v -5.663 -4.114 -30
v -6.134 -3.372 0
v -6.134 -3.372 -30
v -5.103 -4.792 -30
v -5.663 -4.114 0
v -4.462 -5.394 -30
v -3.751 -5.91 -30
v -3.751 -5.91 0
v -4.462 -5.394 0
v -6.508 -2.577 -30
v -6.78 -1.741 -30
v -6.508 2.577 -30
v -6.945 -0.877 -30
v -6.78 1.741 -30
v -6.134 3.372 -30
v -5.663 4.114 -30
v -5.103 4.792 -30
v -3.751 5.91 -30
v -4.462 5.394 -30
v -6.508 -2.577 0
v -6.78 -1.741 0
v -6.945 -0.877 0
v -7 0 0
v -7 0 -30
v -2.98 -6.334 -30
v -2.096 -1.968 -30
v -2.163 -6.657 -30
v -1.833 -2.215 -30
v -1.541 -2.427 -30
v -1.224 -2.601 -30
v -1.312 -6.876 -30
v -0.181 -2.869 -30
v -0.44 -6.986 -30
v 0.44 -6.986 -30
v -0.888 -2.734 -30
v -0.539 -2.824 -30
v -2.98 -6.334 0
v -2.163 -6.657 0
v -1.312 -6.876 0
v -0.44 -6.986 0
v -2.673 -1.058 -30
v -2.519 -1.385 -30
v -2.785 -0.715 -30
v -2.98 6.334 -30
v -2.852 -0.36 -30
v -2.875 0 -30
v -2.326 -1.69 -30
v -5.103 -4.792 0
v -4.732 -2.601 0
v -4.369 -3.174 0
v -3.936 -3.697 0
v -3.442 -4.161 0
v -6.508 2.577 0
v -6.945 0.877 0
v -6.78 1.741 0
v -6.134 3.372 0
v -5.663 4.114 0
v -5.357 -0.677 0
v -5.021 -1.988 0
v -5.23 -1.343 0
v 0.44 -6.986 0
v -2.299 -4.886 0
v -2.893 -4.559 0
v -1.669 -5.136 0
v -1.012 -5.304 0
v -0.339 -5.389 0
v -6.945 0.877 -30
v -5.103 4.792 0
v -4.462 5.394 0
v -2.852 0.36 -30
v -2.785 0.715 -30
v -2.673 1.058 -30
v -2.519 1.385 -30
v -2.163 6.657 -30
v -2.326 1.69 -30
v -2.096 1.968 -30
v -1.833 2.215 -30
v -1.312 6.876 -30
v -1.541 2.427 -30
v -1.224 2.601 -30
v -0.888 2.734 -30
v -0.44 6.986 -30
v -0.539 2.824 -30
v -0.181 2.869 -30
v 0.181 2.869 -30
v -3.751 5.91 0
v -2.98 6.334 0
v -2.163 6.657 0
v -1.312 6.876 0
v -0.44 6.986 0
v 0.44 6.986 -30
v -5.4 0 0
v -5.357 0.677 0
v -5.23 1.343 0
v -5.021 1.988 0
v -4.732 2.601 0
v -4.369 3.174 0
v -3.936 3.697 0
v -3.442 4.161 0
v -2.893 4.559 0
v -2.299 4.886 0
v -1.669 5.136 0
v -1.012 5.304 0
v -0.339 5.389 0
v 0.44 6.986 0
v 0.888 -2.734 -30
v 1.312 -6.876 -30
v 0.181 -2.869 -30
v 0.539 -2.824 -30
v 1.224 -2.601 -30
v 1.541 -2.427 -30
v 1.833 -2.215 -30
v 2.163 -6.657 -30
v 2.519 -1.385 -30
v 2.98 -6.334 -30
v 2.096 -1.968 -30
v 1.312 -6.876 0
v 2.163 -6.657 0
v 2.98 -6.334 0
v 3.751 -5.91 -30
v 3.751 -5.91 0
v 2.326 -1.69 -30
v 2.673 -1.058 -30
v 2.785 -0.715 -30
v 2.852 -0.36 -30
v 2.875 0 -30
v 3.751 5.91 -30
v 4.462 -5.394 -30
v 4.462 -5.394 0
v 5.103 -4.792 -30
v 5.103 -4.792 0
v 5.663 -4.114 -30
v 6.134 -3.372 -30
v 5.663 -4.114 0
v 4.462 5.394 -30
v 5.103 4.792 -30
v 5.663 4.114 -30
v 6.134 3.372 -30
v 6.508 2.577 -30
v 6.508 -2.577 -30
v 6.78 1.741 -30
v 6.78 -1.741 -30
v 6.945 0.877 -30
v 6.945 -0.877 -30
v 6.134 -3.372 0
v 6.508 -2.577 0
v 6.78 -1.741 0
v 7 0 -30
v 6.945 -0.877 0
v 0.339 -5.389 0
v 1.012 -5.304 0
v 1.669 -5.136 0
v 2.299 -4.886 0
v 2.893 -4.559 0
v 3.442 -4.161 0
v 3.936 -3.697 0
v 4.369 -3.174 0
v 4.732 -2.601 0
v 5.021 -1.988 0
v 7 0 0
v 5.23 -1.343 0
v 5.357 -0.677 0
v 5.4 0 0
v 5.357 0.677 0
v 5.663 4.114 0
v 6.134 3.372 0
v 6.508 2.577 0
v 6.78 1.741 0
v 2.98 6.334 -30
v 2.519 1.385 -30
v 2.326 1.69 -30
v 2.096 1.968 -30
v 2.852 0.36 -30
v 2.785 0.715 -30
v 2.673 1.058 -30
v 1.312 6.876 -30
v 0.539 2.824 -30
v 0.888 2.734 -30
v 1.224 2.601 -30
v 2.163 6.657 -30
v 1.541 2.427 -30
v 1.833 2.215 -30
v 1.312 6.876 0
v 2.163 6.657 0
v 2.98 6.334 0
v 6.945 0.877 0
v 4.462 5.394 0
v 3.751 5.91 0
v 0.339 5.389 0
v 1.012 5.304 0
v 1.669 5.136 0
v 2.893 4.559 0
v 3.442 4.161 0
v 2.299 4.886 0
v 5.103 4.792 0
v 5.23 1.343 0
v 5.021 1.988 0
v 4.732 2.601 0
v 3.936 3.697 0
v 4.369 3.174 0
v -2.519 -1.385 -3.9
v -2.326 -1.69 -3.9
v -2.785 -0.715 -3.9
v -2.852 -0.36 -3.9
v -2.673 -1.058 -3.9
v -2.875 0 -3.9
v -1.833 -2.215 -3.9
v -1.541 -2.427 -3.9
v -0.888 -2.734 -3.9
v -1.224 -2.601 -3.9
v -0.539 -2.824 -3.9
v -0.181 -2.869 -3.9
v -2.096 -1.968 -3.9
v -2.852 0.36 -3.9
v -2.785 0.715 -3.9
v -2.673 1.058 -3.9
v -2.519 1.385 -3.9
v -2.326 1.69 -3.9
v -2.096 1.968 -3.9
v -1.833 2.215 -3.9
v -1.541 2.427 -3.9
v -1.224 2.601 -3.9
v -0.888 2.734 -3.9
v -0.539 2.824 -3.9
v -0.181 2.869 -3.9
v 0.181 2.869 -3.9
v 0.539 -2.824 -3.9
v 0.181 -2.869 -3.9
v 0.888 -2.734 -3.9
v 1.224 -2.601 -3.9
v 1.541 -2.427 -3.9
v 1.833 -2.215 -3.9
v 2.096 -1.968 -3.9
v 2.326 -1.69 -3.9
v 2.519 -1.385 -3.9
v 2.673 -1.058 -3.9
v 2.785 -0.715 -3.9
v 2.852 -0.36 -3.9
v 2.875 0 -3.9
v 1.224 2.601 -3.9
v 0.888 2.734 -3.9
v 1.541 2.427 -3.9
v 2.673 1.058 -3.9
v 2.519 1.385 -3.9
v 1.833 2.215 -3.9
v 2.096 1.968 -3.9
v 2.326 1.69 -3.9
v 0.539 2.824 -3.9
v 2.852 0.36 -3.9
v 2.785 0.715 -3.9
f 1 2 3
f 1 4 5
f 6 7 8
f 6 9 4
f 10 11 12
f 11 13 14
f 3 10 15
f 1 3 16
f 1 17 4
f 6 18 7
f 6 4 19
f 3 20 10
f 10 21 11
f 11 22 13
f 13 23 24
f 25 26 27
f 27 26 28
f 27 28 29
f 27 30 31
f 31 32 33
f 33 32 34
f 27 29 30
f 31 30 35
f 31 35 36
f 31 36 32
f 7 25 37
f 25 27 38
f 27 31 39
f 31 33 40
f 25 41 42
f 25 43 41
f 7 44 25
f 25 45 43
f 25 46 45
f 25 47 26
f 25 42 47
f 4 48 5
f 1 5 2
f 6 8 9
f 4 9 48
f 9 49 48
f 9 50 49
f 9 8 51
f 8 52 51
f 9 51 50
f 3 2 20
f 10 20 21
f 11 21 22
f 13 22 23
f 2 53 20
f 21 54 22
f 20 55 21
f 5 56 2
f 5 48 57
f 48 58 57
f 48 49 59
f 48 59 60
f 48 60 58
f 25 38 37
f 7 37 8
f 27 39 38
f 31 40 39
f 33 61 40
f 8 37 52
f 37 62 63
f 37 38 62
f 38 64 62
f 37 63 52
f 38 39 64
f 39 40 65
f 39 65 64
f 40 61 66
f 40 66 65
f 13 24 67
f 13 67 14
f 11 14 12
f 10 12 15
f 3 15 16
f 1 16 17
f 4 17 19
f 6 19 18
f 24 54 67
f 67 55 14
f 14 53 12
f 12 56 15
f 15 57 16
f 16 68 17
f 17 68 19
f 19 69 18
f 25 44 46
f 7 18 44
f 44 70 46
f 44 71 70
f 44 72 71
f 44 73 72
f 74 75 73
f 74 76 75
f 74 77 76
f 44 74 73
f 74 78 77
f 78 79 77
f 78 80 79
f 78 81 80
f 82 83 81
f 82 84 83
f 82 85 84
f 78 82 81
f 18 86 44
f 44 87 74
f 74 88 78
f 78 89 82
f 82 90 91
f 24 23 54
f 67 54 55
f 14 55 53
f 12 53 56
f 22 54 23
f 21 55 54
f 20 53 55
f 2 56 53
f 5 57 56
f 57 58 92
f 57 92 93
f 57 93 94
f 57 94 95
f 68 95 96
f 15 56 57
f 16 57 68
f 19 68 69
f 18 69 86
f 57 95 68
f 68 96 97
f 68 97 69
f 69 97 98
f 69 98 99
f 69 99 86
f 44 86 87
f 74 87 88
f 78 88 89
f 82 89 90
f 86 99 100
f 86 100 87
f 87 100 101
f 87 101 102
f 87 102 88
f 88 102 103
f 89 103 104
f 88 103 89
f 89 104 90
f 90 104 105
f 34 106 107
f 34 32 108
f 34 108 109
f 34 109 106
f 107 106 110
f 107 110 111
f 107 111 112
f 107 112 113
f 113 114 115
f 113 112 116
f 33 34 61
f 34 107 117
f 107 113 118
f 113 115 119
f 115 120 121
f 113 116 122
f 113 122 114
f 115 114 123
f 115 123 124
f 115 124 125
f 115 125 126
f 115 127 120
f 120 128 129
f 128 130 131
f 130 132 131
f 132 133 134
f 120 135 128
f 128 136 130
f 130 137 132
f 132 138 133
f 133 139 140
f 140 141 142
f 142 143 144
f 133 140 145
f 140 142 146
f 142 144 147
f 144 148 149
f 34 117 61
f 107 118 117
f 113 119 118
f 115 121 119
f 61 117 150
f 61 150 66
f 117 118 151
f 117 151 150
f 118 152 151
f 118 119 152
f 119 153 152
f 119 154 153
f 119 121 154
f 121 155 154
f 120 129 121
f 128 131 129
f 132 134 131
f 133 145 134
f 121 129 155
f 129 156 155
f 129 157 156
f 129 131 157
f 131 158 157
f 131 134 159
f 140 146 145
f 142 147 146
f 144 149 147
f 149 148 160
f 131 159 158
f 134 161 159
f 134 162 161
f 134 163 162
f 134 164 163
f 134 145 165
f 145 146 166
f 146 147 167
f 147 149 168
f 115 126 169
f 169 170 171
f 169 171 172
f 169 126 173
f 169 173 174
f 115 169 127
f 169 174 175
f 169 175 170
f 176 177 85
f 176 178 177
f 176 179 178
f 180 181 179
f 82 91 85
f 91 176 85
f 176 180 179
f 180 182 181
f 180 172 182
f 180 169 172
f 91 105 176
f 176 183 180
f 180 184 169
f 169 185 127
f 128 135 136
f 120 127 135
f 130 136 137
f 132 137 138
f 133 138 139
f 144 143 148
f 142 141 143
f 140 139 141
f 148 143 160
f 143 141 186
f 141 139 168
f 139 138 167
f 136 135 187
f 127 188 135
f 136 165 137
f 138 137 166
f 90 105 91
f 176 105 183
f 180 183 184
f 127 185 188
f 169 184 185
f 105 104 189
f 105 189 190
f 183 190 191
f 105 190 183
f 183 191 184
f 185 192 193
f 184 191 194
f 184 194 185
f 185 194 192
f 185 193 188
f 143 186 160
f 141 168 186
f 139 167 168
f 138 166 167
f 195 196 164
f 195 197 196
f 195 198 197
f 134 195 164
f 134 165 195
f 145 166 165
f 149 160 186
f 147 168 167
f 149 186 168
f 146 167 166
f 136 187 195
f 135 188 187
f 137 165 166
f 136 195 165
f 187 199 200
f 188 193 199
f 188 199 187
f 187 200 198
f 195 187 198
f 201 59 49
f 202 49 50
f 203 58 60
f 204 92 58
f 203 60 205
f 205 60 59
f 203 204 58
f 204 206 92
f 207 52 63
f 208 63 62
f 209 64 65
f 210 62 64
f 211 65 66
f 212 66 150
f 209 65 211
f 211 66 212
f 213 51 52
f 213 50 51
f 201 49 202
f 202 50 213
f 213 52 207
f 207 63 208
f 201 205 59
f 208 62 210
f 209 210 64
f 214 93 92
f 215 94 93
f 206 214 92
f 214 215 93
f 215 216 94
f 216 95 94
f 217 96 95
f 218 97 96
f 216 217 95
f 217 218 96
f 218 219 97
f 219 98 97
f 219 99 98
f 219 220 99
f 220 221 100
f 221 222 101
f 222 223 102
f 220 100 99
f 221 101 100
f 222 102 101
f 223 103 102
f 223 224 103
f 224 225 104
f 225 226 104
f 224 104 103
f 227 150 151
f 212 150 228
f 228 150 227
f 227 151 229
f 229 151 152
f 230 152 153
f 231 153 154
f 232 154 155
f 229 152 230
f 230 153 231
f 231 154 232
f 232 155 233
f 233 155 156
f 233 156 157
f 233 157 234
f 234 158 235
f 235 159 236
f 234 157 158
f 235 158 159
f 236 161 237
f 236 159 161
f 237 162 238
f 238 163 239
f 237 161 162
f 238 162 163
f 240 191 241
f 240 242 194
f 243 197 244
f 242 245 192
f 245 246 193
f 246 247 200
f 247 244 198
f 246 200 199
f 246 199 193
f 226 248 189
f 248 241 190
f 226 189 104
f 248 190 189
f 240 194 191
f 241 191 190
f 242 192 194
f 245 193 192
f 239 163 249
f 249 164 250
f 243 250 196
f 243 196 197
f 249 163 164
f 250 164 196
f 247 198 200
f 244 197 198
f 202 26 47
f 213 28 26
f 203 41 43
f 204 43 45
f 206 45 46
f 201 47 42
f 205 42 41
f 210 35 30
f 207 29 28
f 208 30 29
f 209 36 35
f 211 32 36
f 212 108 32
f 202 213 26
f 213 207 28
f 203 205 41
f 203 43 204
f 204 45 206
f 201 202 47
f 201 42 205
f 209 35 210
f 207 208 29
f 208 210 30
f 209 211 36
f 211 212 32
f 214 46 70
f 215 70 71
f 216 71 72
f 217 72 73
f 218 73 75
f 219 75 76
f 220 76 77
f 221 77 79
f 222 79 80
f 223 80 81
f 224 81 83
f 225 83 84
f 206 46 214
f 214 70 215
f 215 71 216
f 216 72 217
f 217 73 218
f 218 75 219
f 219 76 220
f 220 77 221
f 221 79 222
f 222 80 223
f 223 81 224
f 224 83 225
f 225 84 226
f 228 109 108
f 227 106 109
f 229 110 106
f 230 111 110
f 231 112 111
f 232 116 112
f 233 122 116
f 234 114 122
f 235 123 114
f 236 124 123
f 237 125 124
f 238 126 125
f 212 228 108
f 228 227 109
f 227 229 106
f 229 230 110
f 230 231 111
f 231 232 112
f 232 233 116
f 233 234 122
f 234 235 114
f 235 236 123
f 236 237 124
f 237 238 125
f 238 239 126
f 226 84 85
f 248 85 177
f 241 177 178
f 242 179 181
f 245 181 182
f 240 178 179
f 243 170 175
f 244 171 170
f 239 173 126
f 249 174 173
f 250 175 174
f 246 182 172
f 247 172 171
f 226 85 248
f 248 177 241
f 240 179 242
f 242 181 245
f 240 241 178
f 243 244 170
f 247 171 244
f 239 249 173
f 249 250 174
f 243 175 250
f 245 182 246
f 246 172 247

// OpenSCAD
$fn = 50;


difference() {
	union() {
		translate(v = [0, 0, -30.0000000000]) {
			cylinder(h = 30, r = 7.0000000000);
		}
		#translate(v = [0, 0, -33.0000000000]) {
			cylinder(h = 33, r = 2.8750000000);
		}
	}
	union() {
		translate(v = [0, 0, 0]) {
			rotate(a = [0, 0, 0]) {
				difference() {
					union() {
						translate(v = [0, 0, -33.0000000000]) {
							cylinder(h = 33, r = 2.6000000000);
						}
						translate(v = [0, 0, -3.9000000000]) {
							cylinder(h = 3.9000000000, r1 = 2.8750000000, r2 = 5.4000000000);
						}
						translate(v = [0, 0, -33.0000000000]) {
							cylinder(h = 33, r = 2.8750000000);
						}
						translate(v = [0, 0, -33.0000000000]) {
							cylinder(h = 33, r = 2.6000000000);
						}
					}
					union();
				}
			}
		}
	}
}
